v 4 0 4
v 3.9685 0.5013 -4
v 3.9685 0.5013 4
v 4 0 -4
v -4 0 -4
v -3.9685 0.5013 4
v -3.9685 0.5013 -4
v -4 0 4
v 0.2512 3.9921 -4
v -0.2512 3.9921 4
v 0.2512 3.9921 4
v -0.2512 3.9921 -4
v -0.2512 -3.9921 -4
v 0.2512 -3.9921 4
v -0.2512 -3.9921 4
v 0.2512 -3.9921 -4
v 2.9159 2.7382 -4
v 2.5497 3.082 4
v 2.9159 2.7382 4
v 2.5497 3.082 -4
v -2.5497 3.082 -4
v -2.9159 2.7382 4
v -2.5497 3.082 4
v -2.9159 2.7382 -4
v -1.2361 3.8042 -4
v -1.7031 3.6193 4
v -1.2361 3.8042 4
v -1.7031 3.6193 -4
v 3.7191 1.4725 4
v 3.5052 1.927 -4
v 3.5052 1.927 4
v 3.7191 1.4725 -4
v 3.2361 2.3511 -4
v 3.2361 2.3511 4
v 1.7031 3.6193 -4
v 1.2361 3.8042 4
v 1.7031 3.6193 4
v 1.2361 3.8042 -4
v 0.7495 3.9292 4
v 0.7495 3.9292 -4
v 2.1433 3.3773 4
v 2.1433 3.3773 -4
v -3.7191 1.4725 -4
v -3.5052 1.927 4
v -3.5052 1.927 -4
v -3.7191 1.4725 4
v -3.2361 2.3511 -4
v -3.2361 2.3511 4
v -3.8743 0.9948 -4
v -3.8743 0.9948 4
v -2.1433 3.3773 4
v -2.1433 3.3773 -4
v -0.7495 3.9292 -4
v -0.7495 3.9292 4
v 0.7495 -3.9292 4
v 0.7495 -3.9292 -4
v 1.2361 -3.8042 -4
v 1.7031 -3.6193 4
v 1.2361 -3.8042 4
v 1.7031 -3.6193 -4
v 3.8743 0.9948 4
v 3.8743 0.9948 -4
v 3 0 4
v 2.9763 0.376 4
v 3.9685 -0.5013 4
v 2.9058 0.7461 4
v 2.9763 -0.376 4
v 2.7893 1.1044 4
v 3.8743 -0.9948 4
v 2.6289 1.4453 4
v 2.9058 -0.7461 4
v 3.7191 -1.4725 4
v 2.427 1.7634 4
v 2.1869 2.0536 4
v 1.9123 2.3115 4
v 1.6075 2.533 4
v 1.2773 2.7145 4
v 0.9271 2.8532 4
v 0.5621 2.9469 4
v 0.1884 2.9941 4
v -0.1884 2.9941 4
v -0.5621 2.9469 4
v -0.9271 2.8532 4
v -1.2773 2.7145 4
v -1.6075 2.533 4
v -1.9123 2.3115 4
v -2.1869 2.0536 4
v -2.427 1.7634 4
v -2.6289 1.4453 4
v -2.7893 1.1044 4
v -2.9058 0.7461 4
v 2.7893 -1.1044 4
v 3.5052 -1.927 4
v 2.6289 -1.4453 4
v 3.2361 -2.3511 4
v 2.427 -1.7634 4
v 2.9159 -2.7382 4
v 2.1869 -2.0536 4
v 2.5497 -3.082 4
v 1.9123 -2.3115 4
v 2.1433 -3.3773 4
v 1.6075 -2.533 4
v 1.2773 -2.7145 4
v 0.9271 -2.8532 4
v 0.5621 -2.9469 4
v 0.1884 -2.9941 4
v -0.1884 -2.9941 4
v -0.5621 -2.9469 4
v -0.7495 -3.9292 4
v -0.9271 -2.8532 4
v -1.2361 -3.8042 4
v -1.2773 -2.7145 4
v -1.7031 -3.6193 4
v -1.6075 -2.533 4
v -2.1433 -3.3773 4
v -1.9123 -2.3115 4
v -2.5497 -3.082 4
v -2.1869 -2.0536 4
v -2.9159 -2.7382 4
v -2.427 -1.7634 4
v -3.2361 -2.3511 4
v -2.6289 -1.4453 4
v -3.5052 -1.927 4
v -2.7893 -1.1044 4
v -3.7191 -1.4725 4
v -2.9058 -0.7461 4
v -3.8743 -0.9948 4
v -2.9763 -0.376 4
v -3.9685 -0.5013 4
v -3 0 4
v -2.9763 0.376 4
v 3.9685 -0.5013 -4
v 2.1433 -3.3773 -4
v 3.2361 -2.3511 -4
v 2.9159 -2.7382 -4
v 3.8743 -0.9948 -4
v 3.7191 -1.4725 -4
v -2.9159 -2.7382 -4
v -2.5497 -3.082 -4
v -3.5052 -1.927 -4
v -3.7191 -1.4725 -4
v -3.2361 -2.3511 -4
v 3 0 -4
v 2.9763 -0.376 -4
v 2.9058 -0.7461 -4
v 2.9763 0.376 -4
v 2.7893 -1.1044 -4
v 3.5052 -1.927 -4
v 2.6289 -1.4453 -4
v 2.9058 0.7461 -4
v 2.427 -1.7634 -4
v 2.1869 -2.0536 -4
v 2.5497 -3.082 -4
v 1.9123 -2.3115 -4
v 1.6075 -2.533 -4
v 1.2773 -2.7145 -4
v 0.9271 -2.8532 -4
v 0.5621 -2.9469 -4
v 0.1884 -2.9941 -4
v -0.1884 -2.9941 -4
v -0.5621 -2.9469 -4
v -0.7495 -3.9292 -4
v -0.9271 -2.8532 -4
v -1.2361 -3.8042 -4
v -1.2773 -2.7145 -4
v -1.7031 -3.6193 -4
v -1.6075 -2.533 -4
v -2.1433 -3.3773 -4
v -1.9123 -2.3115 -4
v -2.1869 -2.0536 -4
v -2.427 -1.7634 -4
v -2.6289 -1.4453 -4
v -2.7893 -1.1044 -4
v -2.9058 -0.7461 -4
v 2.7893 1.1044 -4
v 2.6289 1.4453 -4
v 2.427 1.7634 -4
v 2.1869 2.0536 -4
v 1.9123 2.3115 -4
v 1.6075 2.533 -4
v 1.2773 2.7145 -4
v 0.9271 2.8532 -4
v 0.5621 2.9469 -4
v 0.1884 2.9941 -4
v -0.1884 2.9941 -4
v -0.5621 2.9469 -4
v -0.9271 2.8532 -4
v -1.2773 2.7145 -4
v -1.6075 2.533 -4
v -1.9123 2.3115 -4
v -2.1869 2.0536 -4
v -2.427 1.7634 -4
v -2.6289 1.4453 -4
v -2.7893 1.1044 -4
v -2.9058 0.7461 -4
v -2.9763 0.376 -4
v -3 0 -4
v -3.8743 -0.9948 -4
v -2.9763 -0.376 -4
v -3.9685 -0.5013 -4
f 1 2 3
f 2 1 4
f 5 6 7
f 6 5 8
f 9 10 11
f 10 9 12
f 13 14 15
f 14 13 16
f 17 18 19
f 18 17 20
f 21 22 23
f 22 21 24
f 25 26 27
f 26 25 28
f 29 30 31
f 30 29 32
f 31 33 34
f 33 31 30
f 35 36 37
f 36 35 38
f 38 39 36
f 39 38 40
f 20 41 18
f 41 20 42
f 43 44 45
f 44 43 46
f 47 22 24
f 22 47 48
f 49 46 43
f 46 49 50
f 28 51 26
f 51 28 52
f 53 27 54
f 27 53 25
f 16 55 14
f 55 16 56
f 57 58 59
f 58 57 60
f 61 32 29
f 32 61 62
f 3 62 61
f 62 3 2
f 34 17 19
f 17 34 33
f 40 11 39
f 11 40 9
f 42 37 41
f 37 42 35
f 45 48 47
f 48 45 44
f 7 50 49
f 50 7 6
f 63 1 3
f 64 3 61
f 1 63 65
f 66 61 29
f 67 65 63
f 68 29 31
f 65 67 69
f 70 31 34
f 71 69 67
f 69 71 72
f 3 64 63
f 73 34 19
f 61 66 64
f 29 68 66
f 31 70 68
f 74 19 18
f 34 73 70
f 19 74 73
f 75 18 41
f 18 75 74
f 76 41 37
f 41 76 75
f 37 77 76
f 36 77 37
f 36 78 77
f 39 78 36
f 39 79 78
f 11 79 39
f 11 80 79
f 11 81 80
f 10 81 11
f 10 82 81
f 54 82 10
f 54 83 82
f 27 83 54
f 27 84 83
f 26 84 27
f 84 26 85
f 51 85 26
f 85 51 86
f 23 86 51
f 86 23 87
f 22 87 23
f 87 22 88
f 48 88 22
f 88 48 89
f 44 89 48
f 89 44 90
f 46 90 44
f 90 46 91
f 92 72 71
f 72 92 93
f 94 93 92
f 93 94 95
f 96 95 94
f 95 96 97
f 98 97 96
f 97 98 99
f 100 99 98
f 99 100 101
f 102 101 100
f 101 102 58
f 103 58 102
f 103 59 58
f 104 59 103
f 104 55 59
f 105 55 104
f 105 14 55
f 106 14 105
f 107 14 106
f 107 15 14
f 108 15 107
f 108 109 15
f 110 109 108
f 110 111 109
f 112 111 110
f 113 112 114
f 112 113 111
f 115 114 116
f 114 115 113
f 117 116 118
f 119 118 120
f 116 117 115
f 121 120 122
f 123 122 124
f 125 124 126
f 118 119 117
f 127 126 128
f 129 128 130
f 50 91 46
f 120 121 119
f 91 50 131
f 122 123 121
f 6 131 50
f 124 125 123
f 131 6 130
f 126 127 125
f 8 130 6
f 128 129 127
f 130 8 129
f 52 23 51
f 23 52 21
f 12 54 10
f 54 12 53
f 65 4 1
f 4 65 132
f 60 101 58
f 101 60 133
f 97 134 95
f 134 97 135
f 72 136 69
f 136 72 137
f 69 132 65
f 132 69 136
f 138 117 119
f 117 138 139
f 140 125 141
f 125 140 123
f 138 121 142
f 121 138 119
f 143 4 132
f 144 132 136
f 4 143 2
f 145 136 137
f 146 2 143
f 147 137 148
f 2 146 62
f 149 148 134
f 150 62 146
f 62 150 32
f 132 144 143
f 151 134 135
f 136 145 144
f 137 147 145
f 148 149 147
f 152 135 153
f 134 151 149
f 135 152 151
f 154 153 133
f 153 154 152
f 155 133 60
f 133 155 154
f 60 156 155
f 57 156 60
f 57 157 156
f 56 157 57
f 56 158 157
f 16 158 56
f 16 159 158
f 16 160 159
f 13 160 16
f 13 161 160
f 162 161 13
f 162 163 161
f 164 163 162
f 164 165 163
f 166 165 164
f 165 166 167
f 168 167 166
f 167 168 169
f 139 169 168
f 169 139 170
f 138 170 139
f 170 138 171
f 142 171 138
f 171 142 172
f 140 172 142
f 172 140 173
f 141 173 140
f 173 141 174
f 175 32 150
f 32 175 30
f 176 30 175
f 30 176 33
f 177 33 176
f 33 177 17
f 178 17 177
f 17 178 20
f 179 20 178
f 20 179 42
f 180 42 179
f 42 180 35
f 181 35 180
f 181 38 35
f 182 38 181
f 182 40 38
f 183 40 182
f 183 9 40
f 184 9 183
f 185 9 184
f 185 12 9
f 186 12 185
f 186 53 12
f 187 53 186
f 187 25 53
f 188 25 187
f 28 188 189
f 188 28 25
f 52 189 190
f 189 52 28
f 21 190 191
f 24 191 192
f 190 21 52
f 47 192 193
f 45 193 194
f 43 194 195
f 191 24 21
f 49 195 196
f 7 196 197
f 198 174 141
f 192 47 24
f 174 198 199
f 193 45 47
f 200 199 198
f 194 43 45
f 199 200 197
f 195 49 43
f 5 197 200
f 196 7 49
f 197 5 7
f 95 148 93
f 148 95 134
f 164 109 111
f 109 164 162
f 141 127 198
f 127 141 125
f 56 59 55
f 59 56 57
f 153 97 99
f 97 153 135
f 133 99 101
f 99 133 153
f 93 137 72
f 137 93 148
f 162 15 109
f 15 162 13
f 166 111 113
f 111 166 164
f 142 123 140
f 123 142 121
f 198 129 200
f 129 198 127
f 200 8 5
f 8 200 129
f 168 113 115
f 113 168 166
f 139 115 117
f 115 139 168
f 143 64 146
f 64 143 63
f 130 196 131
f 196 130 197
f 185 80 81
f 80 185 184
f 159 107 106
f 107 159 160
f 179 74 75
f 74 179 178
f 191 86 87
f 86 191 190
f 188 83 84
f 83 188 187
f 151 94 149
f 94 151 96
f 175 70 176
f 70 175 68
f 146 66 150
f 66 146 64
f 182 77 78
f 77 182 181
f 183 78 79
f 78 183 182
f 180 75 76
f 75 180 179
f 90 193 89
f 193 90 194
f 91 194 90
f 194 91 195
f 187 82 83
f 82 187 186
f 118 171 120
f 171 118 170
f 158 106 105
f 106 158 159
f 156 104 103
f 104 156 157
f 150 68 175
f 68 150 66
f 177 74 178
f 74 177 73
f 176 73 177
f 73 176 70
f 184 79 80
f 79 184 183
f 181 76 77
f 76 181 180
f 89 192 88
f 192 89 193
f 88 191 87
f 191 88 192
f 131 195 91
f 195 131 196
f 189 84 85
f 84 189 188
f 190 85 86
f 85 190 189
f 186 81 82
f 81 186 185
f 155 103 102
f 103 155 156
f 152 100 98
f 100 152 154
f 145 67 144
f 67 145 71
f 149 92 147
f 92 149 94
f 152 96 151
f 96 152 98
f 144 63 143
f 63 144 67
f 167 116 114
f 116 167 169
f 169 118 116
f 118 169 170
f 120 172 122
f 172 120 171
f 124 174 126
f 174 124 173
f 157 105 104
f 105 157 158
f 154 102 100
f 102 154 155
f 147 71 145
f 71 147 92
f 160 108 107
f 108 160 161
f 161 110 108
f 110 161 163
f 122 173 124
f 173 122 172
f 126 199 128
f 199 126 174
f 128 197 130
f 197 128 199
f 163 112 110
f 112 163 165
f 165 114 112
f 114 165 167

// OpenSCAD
$fn = 50;


difference() {
	union() {
		translate(v = [0, 0, -4.0000000000]) {
			cylinder(h = 8, r = 4.0000000000);
		}
	}
	union() {
		translate(v = [0, 0, -100.0000000000]) {
			cylinder(h = 200, r = 3);
		}
	}
}
